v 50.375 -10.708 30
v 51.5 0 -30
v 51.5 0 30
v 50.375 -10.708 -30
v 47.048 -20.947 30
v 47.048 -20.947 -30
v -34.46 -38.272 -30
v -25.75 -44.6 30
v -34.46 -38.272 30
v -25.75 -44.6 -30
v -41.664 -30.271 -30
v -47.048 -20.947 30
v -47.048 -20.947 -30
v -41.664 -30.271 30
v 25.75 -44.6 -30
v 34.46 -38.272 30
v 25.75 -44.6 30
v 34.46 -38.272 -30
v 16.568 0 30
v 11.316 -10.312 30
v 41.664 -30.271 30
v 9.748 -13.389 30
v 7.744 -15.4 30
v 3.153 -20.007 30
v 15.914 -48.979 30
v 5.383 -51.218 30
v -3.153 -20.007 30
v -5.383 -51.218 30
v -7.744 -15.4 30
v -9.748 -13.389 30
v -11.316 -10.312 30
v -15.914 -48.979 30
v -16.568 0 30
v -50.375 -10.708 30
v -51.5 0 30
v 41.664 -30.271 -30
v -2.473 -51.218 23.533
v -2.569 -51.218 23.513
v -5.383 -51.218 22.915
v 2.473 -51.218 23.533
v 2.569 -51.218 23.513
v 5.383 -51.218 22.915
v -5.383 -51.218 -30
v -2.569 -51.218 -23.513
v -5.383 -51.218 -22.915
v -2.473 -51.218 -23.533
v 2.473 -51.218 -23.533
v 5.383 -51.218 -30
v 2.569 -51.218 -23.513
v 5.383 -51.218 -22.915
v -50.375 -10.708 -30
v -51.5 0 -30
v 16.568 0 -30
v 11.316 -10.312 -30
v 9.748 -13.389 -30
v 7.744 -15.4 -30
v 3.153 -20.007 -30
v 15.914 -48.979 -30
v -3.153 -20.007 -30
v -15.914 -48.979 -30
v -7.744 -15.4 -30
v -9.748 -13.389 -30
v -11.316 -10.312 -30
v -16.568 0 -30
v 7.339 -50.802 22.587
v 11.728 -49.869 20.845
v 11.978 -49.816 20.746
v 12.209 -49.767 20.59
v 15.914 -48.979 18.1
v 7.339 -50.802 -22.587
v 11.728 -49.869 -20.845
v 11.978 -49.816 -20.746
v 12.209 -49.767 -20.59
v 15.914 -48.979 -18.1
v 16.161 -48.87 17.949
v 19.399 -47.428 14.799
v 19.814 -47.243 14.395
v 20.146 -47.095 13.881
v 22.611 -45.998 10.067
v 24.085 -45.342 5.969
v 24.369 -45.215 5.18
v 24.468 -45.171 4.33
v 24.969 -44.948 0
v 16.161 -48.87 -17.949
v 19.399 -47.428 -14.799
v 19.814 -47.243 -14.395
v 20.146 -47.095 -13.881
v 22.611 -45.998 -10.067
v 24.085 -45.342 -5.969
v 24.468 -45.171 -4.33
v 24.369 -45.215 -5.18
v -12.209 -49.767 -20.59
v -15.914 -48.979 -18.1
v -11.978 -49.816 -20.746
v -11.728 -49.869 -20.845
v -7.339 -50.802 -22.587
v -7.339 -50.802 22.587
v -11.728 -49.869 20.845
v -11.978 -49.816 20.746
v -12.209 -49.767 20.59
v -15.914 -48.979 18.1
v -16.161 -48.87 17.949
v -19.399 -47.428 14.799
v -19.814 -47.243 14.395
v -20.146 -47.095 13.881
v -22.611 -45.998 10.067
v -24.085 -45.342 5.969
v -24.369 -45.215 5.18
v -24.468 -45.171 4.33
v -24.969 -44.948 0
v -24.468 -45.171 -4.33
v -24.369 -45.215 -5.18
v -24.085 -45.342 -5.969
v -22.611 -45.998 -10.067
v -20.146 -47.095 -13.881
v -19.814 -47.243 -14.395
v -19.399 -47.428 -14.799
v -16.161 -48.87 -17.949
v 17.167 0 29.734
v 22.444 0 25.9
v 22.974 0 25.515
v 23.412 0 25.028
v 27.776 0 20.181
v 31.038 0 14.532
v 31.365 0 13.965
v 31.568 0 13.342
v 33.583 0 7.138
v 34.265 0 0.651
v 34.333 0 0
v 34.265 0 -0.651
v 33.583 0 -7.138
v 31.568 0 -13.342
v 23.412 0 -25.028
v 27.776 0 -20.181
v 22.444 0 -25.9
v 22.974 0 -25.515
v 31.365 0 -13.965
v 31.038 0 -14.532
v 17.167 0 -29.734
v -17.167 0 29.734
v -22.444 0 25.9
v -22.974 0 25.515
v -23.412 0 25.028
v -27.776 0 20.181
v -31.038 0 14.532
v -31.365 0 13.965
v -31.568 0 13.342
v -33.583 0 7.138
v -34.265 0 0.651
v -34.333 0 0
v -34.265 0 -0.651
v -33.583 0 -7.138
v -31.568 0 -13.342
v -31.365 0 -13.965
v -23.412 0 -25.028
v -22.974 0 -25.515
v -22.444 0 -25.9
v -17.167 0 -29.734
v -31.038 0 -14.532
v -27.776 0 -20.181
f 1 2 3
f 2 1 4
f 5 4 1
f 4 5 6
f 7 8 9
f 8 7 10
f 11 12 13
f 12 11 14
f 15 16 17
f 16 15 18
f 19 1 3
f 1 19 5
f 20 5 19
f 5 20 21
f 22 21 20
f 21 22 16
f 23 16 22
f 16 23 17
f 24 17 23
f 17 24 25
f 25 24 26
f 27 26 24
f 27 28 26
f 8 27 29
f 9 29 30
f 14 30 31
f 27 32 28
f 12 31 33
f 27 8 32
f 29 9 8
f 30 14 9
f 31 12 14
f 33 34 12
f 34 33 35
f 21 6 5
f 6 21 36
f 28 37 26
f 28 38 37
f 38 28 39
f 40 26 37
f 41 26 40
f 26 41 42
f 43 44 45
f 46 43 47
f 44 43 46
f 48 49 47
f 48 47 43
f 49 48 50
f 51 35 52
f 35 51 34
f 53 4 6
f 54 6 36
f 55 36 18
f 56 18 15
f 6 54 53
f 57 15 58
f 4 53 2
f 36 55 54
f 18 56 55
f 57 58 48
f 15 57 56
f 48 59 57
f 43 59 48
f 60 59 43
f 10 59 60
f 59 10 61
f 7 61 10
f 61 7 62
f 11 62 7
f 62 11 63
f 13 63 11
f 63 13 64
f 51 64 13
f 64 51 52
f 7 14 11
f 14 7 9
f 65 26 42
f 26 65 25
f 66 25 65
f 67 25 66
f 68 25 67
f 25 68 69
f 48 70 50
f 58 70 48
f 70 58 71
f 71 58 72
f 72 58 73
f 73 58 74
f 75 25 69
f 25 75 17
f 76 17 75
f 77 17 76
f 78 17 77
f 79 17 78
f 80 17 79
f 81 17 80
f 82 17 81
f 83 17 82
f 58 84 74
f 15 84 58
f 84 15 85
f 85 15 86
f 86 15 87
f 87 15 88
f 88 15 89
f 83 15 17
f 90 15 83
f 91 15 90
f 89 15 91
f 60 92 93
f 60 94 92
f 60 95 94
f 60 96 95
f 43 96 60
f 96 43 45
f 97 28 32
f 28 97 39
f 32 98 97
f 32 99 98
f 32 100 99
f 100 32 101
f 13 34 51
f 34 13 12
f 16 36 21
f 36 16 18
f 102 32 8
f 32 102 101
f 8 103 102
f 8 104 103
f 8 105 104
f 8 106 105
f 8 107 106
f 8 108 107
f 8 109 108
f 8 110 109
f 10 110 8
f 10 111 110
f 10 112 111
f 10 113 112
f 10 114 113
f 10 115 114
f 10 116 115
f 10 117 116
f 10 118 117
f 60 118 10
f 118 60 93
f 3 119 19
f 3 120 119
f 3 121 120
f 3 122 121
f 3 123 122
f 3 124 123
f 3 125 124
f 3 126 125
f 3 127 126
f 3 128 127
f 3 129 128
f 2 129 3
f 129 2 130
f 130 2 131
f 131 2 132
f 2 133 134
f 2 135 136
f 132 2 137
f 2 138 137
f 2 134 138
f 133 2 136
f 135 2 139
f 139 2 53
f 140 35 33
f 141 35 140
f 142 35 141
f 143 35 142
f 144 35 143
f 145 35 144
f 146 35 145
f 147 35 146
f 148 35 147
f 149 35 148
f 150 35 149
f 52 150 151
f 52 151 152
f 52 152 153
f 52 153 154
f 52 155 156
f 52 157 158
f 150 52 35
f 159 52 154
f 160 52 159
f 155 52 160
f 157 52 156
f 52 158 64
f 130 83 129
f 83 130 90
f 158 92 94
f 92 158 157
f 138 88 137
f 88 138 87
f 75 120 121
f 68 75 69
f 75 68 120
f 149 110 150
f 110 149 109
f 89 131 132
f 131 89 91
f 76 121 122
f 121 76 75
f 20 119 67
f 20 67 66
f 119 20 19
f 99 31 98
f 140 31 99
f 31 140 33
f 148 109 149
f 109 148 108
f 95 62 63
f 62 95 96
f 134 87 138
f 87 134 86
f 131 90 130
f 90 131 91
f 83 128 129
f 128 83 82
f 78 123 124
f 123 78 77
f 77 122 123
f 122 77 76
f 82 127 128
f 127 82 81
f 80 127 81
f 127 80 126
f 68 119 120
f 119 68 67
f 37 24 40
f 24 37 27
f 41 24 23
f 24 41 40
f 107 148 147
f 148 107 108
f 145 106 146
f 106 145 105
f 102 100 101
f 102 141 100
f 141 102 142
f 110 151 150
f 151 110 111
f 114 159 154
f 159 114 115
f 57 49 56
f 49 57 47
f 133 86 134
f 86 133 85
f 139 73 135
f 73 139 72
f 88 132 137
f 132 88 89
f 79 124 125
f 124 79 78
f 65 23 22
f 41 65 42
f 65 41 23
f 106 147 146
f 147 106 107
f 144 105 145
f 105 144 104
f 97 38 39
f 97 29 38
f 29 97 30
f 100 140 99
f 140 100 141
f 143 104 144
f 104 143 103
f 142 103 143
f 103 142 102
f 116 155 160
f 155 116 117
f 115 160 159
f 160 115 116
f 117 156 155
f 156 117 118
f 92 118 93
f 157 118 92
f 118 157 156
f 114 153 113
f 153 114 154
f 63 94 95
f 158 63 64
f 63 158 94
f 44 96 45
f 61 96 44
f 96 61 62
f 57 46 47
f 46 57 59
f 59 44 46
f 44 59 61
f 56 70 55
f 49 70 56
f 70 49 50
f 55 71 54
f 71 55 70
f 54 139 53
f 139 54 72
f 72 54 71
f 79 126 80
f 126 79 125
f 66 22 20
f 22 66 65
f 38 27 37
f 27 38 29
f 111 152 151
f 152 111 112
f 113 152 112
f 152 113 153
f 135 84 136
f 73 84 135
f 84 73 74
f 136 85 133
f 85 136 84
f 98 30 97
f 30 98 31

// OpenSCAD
difference(){
cylinder(h=60,d=103,center=true);
translate([0,30,0])
    cube([120,60,100],center=true);
rotate([-90,0,0])
    translate([0,0,-52])
#cylinder(h=60,d1=47,d2=72);
}
